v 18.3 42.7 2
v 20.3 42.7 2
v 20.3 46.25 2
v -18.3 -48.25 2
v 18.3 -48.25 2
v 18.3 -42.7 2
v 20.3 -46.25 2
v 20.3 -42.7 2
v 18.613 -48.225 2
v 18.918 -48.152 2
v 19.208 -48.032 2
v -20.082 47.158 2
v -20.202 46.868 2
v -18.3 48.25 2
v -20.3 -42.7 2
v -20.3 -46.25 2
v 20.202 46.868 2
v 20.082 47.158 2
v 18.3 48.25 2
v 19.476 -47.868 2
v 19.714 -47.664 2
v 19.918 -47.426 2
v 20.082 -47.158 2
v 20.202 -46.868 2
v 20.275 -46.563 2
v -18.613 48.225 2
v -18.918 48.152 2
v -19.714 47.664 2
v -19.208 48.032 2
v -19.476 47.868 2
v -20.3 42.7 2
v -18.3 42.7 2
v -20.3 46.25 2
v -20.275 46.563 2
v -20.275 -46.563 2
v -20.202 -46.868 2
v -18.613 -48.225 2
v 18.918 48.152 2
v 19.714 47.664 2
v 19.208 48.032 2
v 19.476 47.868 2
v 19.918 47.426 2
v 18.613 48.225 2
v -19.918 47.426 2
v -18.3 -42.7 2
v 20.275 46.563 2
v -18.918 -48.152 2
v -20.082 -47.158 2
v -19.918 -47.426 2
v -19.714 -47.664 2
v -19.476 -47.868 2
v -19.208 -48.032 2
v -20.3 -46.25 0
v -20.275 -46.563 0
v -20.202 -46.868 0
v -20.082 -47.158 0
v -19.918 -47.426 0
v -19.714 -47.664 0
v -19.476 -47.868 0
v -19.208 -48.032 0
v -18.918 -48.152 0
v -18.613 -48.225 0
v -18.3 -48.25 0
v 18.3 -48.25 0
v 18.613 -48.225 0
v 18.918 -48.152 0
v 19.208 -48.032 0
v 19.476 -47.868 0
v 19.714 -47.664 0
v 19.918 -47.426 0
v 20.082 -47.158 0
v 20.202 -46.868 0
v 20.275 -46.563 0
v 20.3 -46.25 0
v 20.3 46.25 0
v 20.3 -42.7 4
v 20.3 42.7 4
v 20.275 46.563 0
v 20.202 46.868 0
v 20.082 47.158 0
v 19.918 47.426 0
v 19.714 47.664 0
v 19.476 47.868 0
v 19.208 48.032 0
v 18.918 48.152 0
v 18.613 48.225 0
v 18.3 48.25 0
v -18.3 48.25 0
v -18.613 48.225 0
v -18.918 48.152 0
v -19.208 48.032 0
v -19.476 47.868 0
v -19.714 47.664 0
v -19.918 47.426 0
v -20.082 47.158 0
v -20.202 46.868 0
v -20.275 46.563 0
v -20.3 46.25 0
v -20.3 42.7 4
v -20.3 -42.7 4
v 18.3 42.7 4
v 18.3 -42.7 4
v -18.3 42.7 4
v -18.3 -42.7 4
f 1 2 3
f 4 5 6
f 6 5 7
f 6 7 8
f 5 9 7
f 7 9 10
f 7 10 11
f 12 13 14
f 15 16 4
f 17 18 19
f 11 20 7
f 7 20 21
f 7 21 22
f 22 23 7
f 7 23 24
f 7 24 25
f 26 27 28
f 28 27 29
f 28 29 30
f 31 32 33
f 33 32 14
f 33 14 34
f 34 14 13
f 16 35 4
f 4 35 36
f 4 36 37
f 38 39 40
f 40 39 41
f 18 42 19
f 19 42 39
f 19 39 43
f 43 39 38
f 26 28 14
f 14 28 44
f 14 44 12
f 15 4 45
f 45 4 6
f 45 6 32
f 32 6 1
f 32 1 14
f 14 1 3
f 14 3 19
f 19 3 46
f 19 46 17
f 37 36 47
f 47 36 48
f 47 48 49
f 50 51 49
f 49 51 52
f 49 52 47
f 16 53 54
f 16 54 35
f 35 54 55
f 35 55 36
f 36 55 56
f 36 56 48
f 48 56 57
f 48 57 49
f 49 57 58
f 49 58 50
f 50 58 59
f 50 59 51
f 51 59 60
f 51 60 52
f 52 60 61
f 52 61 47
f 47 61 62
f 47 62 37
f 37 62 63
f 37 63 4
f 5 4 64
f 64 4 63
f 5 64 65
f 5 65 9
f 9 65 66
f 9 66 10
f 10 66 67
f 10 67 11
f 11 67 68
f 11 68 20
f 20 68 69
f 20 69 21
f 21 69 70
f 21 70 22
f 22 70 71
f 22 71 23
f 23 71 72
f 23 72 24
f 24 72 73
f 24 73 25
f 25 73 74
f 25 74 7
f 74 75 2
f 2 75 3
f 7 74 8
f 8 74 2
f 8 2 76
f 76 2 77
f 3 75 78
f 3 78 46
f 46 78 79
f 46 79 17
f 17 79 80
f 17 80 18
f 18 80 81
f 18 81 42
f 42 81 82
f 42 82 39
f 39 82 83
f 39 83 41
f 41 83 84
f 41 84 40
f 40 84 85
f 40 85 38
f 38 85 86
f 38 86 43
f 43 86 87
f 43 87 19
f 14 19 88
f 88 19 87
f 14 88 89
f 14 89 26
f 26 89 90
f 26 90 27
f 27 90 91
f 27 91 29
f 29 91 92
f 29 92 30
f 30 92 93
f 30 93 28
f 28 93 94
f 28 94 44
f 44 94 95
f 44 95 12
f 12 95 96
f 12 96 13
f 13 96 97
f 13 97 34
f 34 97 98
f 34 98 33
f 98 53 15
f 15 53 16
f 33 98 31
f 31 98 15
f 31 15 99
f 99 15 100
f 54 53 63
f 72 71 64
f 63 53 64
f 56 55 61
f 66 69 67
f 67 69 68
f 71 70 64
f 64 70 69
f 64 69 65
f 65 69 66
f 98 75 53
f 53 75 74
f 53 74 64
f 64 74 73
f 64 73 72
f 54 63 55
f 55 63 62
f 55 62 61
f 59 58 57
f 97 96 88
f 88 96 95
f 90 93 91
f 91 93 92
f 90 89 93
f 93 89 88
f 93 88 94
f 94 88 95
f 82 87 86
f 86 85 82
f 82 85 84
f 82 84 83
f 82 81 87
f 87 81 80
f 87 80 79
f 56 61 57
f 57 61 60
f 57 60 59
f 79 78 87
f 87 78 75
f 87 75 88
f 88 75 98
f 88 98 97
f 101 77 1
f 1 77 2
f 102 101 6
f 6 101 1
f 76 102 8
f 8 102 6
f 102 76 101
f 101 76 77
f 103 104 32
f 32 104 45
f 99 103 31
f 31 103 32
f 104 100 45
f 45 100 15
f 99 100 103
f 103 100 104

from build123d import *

# Parameters (mm, degrees)
Y_KSEKLIK_EKSTR_ZYON1_DEPTH = 2
IZIM2_W                     = 2
IZIM2_H                     = 85.4
Y_KSEKLIK_EKSTR_ZYON2_DEPTH = 2


with BuildPart() as part:
    # Çizim1 → Yükseklik-Ekstrüzyon1 (new body)
    with BuildSketch(Plane.XY):
        with BuildLine():
            Line((-18.3, -48.25), (18.3, -48.25))
            ThreePointArc((18.3, -48.25), (19.714213562, -47.664213562), (20.3, -46.25))
            Line((20.3, -46.25), (20.3, 46.25))
            ThreePointArc((20.3, 46.25), (19.714213562, 47.664213562), (18.3, 48.25))
            Line((18.3, 48.25), (-18.3, 48.25))
            ThreePointArc((-18.3, 48.25), (-19.714213562, 47.664213562), (-20.3, 46.25))
            Line((-20.3, 46.25), (-20.3, -46.25))
            ThreePointArc((-20.3, -46.25), (-19.714213562, -47.664213562), (-18.3, -48.25))
        make_face()
    extrude(amount=Y_KSEKLIK_EKSTR_ZYON1_DEPTH)

    # Çizim2 → Yükseklik-Ekstrüzyon2 (add)
    with BuildSketch(Plane.XY.offset(2)):
        with Locations((-19.3, 0)):
            Rectangle(IZIM2_W, IZIM2_H)
        with Locations((19.3, 0)):
            Rectangle(IZIM2_W, IZIM2_H)
    extrude(amount=Y_KSEKLIK_EKSTR_ZYON2_DEPTH)


solid = part.part
